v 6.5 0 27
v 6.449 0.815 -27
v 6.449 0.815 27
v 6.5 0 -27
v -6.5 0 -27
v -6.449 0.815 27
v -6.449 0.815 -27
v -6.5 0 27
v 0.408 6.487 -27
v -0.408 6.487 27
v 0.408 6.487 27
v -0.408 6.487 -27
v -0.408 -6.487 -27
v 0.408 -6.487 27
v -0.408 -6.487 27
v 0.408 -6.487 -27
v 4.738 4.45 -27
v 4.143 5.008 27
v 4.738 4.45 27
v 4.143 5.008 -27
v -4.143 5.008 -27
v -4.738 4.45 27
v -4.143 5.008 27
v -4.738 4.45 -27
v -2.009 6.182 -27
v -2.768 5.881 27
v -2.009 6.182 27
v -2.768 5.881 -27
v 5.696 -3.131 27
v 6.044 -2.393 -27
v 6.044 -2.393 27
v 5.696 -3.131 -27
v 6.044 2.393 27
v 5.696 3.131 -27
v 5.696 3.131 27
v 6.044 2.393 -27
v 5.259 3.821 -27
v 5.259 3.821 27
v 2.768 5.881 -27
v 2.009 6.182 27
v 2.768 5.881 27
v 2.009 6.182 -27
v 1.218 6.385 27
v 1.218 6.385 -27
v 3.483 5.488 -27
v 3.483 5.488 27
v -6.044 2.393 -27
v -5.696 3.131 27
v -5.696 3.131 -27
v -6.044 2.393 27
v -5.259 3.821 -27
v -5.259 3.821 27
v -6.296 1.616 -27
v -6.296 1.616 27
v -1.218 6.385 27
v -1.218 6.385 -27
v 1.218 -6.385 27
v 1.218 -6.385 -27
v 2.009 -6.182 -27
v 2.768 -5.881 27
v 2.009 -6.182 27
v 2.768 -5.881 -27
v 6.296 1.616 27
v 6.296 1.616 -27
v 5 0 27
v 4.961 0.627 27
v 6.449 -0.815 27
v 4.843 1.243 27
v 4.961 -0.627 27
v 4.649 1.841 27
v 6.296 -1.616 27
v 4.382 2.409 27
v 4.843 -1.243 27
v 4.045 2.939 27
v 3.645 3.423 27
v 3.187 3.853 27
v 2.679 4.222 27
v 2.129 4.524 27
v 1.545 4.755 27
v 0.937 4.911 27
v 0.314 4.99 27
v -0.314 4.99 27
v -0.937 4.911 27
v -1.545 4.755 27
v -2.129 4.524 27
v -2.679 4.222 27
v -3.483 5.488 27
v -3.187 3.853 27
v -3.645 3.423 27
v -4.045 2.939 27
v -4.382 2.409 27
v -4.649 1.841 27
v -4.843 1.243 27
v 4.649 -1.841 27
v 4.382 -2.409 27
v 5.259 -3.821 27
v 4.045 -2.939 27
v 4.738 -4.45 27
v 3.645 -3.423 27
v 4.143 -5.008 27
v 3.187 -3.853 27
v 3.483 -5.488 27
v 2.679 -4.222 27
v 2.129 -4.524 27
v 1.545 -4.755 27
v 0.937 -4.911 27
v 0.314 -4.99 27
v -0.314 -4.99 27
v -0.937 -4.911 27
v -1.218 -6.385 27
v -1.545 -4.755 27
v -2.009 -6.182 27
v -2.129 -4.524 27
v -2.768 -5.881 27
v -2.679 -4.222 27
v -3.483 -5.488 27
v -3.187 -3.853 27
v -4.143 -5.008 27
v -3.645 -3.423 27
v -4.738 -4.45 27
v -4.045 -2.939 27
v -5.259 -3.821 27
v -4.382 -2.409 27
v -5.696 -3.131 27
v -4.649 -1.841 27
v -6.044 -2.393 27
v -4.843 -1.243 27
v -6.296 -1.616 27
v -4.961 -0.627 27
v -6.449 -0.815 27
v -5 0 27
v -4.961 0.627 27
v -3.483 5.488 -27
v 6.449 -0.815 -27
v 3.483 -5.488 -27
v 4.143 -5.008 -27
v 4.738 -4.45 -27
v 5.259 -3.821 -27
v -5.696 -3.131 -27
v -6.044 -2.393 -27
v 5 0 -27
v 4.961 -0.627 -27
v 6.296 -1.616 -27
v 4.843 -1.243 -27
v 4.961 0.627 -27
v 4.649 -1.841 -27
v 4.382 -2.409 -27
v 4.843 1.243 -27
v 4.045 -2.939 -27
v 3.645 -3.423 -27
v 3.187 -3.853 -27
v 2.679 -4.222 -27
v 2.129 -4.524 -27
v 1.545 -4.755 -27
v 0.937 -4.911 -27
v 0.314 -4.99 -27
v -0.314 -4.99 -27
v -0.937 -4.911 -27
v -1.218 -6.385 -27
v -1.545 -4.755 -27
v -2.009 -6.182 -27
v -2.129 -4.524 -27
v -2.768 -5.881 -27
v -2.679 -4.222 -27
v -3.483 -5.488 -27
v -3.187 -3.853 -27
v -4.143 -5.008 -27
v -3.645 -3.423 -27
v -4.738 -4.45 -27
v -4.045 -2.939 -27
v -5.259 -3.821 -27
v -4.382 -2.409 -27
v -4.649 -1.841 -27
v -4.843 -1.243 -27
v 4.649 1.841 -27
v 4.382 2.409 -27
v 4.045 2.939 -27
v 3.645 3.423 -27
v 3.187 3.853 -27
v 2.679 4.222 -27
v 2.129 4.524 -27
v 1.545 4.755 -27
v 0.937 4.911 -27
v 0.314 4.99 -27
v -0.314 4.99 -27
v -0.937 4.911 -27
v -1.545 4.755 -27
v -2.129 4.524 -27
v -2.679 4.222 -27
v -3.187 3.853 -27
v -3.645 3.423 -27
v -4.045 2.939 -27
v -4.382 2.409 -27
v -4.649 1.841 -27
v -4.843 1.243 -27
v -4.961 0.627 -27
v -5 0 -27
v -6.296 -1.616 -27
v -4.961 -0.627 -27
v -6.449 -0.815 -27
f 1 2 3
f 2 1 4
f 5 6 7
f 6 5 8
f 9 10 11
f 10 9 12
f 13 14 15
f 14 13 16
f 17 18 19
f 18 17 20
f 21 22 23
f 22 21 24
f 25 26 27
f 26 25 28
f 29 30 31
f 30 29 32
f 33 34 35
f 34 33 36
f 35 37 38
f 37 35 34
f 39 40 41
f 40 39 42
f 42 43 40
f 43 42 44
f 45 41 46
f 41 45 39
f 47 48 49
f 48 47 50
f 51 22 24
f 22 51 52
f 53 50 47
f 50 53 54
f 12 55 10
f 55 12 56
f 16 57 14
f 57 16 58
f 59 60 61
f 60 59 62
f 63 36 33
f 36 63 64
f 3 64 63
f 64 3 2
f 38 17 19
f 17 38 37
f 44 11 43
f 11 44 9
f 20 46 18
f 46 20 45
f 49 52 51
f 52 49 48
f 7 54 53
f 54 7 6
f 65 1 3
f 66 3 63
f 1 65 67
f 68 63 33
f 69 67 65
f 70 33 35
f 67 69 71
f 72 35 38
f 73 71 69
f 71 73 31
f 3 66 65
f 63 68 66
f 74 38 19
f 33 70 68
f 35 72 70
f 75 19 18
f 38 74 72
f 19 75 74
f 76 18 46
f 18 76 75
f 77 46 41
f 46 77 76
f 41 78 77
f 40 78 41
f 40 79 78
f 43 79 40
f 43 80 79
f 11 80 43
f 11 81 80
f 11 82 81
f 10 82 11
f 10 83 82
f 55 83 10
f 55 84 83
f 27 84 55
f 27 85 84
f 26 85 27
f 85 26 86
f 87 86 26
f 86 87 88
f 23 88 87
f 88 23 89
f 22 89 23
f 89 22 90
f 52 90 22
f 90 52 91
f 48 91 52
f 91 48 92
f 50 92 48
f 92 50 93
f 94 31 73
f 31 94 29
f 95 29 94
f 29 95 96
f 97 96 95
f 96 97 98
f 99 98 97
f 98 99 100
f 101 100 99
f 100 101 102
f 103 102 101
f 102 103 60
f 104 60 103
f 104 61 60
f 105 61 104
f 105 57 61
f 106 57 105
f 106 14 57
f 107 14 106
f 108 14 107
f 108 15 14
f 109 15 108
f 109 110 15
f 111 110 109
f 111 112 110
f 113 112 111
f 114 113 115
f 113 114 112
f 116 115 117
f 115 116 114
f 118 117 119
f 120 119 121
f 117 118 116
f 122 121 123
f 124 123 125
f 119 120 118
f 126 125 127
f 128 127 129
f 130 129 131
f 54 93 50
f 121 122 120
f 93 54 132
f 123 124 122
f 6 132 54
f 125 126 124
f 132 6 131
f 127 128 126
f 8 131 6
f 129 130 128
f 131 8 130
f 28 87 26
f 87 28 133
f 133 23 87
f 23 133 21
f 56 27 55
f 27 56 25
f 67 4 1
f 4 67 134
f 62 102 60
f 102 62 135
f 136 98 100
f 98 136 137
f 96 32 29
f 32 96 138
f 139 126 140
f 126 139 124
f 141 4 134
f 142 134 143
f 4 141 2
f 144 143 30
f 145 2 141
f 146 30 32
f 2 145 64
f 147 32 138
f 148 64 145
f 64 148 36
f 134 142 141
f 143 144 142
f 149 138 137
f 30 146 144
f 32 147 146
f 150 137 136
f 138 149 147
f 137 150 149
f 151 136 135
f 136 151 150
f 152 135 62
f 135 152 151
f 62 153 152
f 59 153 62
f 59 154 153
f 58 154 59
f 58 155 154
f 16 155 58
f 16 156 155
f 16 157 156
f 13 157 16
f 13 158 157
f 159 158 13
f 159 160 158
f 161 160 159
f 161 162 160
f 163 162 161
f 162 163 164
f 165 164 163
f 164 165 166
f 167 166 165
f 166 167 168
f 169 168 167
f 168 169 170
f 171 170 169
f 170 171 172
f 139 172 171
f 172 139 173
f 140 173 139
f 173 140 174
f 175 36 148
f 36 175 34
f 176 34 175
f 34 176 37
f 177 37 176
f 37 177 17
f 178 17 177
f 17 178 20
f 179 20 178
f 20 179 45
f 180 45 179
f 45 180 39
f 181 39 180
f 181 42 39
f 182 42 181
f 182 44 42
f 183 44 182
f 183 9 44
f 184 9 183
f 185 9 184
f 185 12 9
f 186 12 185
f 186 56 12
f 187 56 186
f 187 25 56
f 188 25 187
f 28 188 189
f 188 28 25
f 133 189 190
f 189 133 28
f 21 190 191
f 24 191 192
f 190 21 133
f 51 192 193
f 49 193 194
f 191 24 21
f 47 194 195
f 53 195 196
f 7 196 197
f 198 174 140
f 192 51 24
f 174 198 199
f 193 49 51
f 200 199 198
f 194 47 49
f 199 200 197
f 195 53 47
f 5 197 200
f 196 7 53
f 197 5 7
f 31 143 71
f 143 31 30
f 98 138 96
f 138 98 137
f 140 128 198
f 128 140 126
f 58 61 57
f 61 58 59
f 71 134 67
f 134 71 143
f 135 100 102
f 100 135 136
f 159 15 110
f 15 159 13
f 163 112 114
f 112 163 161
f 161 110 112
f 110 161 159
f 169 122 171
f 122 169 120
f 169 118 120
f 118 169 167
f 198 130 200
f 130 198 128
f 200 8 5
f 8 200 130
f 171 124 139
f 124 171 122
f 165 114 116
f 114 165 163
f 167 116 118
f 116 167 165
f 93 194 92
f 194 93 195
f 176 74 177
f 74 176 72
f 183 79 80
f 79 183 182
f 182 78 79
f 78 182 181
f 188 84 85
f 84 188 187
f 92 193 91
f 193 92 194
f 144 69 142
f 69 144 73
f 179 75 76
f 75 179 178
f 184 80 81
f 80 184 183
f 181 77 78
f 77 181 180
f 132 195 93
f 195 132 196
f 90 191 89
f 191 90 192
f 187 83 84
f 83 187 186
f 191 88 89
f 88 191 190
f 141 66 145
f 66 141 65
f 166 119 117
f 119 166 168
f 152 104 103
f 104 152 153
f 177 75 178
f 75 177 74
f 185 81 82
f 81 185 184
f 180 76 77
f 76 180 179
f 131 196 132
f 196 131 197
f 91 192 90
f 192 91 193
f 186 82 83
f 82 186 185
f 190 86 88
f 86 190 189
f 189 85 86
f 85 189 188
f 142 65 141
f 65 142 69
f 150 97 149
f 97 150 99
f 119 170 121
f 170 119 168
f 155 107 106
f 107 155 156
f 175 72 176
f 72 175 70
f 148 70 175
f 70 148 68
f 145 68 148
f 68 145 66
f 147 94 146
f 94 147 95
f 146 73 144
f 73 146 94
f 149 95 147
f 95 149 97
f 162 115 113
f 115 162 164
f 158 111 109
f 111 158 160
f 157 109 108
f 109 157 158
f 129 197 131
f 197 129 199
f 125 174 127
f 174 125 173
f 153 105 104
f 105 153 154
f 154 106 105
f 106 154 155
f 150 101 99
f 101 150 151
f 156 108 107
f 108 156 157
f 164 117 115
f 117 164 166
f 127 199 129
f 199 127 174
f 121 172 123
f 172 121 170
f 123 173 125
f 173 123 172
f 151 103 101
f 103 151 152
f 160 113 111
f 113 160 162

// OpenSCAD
$fn = 50;


difference() {
	union() {
		translate(v = [0, 0, -27.0000000000]) {
			cylinder(h = 54, r = 6.5000000000);
		}
	}
	union() {
		translate(v = [0, 0, -100.0000000000]) {
			cylinder(h = 200, r = 5);
		}
	}
}
